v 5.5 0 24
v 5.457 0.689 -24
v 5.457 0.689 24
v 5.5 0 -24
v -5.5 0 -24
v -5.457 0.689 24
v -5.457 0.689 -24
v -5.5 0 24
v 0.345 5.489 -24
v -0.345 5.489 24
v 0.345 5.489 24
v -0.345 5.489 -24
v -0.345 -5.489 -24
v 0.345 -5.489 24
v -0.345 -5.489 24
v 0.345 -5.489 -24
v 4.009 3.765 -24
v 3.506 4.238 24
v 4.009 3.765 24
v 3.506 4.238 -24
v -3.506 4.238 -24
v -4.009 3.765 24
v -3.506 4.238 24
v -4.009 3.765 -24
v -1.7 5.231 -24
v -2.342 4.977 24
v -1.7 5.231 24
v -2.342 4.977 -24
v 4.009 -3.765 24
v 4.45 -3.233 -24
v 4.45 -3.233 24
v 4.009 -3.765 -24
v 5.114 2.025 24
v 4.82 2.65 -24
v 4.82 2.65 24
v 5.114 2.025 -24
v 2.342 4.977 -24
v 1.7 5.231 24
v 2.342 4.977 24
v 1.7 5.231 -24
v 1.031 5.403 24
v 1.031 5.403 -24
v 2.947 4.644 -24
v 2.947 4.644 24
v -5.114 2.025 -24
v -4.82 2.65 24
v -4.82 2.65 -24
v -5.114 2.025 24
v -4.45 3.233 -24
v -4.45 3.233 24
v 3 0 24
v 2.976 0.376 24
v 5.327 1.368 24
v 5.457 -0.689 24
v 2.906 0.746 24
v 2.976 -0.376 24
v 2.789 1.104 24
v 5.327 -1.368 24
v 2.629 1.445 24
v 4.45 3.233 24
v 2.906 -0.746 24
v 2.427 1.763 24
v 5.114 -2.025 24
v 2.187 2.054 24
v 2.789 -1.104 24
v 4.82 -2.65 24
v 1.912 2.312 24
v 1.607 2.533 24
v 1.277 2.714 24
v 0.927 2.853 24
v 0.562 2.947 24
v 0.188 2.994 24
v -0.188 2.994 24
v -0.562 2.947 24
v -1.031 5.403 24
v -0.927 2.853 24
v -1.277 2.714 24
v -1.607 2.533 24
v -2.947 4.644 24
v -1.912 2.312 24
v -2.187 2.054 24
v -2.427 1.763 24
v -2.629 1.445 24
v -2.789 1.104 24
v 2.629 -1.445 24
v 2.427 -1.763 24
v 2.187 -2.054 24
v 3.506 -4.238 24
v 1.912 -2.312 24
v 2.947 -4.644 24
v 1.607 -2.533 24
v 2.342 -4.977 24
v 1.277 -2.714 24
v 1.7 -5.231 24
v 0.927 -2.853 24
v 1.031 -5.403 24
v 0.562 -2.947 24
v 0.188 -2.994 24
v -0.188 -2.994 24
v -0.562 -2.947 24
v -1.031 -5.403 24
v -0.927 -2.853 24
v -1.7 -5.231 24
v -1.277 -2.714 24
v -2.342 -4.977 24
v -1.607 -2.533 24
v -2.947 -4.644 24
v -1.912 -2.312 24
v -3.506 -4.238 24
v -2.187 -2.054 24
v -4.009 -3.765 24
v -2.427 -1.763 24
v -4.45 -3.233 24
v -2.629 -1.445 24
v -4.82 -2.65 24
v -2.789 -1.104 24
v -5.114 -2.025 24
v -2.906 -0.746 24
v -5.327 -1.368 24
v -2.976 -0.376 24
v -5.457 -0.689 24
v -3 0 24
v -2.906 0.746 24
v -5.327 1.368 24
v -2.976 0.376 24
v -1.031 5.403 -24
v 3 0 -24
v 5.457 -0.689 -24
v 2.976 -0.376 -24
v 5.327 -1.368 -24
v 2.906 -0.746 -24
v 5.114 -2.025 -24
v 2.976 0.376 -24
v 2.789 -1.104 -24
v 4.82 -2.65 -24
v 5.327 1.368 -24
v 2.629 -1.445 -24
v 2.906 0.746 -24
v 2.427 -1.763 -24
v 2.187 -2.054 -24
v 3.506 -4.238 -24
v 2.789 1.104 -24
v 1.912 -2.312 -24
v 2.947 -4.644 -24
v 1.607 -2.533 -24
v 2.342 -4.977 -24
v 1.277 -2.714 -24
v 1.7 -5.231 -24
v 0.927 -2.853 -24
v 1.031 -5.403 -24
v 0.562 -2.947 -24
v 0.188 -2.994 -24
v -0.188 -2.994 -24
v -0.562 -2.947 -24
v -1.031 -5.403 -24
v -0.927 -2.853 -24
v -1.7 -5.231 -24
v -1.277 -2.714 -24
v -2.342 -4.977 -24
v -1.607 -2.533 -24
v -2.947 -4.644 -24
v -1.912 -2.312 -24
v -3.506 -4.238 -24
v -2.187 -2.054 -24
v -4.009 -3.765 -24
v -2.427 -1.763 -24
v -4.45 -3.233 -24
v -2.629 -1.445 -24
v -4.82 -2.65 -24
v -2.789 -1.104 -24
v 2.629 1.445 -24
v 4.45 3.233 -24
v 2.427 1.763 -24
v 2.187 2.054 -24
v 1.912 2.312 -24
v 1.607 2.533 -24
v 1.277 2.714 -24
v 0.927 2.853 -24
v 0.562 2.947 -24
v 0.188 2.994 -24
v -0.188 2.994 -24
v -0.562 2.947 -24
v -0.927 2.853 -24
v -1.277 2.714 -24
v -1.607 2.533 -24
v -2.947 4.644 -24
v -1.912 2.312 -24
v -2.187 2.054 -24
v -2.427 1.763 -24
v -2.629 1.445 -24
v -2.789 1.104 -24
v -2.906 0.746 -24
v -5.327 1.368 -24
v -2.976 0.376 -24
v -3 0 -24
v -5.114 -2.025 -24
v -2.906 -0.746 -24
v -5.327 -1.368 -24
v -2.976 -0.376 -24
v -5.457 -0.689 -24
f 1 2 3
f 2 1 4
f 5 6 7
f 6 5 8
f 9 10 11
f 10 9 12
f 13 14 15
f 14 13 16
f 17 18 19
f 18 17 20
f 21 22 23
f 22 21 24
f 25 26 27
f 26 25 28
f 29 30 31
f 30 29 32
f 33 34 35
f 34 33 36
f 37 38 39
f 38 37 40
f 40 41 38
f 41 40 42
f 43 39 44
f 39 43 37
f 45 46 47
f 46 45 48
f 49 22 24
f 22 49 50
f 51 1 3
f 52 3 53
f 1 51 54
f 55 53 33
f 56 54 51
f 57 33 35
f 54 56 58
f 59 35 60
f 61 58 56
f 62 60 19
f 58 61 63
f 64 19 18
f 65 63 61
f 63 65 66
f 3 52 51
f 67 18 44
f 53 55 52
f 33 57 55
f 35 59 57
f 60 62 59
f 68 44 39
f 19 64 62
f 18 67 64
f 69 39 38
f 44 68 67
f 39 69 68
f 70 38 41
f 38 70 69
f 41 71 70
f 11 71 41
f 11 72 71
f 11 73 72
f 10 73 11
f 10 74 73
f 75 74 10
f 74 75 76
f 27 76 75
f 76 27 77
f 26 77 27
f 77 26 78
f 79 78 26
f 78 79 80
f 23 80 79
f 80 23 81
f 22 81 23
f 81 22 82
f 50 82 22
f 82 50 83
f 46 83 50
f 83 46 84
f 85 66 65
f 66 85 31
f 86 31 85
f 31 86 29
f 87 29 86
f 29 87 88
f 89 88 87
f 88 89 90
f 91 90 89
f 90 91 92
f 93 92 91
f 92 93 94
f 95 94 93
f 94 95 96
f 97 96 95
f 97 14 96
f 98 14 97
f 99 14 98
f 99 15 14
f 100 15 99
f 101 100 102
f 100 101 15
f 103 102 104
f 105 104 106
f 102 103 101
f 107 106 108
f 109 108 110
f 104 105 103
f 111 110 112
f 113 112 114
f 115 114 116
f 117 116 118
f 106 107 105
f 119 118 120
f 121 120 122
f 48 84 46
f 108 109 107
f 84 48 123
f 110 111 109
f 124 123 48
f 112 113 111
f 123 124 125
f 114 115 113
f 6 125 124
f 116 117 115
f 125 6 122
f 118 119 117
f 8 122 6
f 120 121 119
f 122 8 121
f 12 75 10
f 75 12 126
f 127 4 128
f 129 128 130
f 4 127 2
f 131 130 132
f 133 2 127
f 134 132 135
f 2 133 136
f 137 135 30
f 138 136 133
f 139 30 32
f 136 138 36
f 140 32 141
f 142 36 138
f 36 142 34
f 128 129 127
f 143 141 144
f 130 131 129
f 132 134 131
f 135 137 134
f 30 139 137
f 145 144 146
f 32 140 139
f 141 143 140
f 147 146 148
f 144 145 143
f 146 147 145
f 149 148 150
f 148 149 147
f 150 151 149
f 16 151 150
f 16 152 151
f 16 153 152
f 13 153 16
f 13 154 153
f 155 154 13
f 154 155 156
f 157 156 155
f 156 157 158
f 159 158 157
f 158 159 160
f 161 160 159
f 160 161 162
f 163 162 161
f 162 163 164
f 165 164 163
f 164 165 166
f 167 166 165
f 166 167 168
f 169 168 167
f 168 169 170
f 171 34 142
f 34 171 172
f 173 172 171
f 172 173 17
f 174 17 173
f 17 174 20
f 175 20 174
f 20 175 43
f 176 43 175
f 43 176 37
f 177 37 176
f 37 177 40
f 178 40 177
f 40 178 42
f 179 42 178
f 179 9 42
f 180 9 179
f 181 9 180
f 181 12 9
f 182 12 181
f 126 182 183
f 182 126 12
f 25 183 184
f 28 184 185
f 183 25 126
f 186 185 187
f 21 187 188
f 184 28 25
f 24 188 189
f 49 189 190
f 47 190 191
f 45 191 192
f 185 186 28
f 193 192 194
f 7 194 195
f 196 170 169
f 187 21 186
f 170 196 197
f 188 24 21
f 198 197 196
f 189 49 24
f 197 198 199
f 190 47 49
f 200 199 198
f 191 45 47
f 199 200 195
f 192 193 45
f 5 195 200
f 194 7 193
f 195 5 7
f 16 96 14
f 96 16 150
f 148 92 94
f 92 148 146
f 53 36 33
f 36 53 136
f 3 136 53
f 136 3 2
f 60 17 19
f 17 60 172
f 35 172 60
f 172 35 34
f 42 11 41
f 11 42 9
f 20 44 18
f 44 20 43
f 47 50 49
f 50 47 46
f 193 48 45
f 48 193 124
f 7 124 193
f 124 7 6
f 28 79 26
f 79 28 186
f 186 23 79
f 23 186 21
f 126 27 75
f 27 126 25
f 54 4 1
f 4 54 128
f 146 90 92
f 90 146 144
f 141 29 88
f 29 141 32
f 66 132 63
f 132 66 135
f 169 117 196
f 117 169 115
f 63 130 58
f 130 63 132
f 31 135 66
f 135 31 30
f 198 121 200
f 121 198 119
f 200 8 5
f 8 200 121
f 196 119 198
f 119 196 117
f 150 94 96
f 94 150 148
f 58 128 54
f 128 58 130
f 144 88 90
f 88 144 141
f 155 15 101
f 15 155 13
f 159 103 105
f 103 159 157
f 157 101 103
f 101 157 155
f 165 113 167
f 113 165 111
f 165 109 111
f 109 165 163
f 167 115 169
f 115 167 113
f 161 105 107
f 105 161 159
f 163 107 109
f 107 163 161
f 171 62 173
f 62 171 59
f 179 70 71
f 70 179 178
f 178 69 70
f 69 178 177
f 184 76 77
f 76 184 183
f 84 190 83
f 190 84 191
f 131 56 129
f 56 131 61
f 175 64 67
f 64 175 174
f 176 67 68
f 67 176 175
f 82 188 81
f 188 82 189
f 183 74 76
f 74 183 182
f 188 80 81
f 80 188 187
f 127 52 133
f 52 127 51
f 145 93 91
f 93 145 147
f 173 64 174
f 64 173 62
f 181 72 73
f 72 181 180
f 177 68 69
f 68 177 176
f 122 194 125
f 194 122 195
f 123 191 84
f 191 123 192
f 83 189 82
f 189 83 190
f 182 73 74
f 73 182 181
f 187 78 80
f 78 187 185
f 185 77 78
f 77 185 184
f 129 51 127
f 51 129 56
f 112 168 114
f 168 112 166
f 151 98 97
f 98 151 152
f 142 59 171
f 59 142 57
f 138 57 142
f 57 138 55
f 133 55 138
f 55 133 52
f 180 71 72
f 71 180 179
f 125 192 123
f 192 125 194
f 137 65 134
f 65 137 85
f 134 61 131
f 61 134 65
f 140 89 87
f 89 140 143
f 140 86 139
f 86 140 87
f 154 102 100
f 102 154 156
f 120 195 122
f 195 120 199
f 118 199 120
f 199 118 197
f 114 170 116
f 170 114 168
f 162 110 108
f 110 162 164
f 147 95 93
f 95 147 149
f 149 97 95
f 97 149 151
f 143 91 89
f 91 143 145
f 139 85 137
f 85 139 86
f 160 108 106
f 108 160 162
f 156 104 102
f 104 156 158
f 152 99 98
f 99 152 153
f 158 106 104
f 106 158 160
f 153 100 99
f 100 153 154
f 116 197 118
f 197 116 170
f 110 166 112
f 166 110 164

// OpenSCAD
$fn = 50;


difference() {
	union() {
		translate(v = [0, 0, -24.0000000000]) {
			cylinder(h = 48, r = 5.5000000000);
		}
	}
	union() {
		translate(v = [0, 0, -100.0000000000]) {
			cylinder(h = 200, r = 3);
		}
	}
}
